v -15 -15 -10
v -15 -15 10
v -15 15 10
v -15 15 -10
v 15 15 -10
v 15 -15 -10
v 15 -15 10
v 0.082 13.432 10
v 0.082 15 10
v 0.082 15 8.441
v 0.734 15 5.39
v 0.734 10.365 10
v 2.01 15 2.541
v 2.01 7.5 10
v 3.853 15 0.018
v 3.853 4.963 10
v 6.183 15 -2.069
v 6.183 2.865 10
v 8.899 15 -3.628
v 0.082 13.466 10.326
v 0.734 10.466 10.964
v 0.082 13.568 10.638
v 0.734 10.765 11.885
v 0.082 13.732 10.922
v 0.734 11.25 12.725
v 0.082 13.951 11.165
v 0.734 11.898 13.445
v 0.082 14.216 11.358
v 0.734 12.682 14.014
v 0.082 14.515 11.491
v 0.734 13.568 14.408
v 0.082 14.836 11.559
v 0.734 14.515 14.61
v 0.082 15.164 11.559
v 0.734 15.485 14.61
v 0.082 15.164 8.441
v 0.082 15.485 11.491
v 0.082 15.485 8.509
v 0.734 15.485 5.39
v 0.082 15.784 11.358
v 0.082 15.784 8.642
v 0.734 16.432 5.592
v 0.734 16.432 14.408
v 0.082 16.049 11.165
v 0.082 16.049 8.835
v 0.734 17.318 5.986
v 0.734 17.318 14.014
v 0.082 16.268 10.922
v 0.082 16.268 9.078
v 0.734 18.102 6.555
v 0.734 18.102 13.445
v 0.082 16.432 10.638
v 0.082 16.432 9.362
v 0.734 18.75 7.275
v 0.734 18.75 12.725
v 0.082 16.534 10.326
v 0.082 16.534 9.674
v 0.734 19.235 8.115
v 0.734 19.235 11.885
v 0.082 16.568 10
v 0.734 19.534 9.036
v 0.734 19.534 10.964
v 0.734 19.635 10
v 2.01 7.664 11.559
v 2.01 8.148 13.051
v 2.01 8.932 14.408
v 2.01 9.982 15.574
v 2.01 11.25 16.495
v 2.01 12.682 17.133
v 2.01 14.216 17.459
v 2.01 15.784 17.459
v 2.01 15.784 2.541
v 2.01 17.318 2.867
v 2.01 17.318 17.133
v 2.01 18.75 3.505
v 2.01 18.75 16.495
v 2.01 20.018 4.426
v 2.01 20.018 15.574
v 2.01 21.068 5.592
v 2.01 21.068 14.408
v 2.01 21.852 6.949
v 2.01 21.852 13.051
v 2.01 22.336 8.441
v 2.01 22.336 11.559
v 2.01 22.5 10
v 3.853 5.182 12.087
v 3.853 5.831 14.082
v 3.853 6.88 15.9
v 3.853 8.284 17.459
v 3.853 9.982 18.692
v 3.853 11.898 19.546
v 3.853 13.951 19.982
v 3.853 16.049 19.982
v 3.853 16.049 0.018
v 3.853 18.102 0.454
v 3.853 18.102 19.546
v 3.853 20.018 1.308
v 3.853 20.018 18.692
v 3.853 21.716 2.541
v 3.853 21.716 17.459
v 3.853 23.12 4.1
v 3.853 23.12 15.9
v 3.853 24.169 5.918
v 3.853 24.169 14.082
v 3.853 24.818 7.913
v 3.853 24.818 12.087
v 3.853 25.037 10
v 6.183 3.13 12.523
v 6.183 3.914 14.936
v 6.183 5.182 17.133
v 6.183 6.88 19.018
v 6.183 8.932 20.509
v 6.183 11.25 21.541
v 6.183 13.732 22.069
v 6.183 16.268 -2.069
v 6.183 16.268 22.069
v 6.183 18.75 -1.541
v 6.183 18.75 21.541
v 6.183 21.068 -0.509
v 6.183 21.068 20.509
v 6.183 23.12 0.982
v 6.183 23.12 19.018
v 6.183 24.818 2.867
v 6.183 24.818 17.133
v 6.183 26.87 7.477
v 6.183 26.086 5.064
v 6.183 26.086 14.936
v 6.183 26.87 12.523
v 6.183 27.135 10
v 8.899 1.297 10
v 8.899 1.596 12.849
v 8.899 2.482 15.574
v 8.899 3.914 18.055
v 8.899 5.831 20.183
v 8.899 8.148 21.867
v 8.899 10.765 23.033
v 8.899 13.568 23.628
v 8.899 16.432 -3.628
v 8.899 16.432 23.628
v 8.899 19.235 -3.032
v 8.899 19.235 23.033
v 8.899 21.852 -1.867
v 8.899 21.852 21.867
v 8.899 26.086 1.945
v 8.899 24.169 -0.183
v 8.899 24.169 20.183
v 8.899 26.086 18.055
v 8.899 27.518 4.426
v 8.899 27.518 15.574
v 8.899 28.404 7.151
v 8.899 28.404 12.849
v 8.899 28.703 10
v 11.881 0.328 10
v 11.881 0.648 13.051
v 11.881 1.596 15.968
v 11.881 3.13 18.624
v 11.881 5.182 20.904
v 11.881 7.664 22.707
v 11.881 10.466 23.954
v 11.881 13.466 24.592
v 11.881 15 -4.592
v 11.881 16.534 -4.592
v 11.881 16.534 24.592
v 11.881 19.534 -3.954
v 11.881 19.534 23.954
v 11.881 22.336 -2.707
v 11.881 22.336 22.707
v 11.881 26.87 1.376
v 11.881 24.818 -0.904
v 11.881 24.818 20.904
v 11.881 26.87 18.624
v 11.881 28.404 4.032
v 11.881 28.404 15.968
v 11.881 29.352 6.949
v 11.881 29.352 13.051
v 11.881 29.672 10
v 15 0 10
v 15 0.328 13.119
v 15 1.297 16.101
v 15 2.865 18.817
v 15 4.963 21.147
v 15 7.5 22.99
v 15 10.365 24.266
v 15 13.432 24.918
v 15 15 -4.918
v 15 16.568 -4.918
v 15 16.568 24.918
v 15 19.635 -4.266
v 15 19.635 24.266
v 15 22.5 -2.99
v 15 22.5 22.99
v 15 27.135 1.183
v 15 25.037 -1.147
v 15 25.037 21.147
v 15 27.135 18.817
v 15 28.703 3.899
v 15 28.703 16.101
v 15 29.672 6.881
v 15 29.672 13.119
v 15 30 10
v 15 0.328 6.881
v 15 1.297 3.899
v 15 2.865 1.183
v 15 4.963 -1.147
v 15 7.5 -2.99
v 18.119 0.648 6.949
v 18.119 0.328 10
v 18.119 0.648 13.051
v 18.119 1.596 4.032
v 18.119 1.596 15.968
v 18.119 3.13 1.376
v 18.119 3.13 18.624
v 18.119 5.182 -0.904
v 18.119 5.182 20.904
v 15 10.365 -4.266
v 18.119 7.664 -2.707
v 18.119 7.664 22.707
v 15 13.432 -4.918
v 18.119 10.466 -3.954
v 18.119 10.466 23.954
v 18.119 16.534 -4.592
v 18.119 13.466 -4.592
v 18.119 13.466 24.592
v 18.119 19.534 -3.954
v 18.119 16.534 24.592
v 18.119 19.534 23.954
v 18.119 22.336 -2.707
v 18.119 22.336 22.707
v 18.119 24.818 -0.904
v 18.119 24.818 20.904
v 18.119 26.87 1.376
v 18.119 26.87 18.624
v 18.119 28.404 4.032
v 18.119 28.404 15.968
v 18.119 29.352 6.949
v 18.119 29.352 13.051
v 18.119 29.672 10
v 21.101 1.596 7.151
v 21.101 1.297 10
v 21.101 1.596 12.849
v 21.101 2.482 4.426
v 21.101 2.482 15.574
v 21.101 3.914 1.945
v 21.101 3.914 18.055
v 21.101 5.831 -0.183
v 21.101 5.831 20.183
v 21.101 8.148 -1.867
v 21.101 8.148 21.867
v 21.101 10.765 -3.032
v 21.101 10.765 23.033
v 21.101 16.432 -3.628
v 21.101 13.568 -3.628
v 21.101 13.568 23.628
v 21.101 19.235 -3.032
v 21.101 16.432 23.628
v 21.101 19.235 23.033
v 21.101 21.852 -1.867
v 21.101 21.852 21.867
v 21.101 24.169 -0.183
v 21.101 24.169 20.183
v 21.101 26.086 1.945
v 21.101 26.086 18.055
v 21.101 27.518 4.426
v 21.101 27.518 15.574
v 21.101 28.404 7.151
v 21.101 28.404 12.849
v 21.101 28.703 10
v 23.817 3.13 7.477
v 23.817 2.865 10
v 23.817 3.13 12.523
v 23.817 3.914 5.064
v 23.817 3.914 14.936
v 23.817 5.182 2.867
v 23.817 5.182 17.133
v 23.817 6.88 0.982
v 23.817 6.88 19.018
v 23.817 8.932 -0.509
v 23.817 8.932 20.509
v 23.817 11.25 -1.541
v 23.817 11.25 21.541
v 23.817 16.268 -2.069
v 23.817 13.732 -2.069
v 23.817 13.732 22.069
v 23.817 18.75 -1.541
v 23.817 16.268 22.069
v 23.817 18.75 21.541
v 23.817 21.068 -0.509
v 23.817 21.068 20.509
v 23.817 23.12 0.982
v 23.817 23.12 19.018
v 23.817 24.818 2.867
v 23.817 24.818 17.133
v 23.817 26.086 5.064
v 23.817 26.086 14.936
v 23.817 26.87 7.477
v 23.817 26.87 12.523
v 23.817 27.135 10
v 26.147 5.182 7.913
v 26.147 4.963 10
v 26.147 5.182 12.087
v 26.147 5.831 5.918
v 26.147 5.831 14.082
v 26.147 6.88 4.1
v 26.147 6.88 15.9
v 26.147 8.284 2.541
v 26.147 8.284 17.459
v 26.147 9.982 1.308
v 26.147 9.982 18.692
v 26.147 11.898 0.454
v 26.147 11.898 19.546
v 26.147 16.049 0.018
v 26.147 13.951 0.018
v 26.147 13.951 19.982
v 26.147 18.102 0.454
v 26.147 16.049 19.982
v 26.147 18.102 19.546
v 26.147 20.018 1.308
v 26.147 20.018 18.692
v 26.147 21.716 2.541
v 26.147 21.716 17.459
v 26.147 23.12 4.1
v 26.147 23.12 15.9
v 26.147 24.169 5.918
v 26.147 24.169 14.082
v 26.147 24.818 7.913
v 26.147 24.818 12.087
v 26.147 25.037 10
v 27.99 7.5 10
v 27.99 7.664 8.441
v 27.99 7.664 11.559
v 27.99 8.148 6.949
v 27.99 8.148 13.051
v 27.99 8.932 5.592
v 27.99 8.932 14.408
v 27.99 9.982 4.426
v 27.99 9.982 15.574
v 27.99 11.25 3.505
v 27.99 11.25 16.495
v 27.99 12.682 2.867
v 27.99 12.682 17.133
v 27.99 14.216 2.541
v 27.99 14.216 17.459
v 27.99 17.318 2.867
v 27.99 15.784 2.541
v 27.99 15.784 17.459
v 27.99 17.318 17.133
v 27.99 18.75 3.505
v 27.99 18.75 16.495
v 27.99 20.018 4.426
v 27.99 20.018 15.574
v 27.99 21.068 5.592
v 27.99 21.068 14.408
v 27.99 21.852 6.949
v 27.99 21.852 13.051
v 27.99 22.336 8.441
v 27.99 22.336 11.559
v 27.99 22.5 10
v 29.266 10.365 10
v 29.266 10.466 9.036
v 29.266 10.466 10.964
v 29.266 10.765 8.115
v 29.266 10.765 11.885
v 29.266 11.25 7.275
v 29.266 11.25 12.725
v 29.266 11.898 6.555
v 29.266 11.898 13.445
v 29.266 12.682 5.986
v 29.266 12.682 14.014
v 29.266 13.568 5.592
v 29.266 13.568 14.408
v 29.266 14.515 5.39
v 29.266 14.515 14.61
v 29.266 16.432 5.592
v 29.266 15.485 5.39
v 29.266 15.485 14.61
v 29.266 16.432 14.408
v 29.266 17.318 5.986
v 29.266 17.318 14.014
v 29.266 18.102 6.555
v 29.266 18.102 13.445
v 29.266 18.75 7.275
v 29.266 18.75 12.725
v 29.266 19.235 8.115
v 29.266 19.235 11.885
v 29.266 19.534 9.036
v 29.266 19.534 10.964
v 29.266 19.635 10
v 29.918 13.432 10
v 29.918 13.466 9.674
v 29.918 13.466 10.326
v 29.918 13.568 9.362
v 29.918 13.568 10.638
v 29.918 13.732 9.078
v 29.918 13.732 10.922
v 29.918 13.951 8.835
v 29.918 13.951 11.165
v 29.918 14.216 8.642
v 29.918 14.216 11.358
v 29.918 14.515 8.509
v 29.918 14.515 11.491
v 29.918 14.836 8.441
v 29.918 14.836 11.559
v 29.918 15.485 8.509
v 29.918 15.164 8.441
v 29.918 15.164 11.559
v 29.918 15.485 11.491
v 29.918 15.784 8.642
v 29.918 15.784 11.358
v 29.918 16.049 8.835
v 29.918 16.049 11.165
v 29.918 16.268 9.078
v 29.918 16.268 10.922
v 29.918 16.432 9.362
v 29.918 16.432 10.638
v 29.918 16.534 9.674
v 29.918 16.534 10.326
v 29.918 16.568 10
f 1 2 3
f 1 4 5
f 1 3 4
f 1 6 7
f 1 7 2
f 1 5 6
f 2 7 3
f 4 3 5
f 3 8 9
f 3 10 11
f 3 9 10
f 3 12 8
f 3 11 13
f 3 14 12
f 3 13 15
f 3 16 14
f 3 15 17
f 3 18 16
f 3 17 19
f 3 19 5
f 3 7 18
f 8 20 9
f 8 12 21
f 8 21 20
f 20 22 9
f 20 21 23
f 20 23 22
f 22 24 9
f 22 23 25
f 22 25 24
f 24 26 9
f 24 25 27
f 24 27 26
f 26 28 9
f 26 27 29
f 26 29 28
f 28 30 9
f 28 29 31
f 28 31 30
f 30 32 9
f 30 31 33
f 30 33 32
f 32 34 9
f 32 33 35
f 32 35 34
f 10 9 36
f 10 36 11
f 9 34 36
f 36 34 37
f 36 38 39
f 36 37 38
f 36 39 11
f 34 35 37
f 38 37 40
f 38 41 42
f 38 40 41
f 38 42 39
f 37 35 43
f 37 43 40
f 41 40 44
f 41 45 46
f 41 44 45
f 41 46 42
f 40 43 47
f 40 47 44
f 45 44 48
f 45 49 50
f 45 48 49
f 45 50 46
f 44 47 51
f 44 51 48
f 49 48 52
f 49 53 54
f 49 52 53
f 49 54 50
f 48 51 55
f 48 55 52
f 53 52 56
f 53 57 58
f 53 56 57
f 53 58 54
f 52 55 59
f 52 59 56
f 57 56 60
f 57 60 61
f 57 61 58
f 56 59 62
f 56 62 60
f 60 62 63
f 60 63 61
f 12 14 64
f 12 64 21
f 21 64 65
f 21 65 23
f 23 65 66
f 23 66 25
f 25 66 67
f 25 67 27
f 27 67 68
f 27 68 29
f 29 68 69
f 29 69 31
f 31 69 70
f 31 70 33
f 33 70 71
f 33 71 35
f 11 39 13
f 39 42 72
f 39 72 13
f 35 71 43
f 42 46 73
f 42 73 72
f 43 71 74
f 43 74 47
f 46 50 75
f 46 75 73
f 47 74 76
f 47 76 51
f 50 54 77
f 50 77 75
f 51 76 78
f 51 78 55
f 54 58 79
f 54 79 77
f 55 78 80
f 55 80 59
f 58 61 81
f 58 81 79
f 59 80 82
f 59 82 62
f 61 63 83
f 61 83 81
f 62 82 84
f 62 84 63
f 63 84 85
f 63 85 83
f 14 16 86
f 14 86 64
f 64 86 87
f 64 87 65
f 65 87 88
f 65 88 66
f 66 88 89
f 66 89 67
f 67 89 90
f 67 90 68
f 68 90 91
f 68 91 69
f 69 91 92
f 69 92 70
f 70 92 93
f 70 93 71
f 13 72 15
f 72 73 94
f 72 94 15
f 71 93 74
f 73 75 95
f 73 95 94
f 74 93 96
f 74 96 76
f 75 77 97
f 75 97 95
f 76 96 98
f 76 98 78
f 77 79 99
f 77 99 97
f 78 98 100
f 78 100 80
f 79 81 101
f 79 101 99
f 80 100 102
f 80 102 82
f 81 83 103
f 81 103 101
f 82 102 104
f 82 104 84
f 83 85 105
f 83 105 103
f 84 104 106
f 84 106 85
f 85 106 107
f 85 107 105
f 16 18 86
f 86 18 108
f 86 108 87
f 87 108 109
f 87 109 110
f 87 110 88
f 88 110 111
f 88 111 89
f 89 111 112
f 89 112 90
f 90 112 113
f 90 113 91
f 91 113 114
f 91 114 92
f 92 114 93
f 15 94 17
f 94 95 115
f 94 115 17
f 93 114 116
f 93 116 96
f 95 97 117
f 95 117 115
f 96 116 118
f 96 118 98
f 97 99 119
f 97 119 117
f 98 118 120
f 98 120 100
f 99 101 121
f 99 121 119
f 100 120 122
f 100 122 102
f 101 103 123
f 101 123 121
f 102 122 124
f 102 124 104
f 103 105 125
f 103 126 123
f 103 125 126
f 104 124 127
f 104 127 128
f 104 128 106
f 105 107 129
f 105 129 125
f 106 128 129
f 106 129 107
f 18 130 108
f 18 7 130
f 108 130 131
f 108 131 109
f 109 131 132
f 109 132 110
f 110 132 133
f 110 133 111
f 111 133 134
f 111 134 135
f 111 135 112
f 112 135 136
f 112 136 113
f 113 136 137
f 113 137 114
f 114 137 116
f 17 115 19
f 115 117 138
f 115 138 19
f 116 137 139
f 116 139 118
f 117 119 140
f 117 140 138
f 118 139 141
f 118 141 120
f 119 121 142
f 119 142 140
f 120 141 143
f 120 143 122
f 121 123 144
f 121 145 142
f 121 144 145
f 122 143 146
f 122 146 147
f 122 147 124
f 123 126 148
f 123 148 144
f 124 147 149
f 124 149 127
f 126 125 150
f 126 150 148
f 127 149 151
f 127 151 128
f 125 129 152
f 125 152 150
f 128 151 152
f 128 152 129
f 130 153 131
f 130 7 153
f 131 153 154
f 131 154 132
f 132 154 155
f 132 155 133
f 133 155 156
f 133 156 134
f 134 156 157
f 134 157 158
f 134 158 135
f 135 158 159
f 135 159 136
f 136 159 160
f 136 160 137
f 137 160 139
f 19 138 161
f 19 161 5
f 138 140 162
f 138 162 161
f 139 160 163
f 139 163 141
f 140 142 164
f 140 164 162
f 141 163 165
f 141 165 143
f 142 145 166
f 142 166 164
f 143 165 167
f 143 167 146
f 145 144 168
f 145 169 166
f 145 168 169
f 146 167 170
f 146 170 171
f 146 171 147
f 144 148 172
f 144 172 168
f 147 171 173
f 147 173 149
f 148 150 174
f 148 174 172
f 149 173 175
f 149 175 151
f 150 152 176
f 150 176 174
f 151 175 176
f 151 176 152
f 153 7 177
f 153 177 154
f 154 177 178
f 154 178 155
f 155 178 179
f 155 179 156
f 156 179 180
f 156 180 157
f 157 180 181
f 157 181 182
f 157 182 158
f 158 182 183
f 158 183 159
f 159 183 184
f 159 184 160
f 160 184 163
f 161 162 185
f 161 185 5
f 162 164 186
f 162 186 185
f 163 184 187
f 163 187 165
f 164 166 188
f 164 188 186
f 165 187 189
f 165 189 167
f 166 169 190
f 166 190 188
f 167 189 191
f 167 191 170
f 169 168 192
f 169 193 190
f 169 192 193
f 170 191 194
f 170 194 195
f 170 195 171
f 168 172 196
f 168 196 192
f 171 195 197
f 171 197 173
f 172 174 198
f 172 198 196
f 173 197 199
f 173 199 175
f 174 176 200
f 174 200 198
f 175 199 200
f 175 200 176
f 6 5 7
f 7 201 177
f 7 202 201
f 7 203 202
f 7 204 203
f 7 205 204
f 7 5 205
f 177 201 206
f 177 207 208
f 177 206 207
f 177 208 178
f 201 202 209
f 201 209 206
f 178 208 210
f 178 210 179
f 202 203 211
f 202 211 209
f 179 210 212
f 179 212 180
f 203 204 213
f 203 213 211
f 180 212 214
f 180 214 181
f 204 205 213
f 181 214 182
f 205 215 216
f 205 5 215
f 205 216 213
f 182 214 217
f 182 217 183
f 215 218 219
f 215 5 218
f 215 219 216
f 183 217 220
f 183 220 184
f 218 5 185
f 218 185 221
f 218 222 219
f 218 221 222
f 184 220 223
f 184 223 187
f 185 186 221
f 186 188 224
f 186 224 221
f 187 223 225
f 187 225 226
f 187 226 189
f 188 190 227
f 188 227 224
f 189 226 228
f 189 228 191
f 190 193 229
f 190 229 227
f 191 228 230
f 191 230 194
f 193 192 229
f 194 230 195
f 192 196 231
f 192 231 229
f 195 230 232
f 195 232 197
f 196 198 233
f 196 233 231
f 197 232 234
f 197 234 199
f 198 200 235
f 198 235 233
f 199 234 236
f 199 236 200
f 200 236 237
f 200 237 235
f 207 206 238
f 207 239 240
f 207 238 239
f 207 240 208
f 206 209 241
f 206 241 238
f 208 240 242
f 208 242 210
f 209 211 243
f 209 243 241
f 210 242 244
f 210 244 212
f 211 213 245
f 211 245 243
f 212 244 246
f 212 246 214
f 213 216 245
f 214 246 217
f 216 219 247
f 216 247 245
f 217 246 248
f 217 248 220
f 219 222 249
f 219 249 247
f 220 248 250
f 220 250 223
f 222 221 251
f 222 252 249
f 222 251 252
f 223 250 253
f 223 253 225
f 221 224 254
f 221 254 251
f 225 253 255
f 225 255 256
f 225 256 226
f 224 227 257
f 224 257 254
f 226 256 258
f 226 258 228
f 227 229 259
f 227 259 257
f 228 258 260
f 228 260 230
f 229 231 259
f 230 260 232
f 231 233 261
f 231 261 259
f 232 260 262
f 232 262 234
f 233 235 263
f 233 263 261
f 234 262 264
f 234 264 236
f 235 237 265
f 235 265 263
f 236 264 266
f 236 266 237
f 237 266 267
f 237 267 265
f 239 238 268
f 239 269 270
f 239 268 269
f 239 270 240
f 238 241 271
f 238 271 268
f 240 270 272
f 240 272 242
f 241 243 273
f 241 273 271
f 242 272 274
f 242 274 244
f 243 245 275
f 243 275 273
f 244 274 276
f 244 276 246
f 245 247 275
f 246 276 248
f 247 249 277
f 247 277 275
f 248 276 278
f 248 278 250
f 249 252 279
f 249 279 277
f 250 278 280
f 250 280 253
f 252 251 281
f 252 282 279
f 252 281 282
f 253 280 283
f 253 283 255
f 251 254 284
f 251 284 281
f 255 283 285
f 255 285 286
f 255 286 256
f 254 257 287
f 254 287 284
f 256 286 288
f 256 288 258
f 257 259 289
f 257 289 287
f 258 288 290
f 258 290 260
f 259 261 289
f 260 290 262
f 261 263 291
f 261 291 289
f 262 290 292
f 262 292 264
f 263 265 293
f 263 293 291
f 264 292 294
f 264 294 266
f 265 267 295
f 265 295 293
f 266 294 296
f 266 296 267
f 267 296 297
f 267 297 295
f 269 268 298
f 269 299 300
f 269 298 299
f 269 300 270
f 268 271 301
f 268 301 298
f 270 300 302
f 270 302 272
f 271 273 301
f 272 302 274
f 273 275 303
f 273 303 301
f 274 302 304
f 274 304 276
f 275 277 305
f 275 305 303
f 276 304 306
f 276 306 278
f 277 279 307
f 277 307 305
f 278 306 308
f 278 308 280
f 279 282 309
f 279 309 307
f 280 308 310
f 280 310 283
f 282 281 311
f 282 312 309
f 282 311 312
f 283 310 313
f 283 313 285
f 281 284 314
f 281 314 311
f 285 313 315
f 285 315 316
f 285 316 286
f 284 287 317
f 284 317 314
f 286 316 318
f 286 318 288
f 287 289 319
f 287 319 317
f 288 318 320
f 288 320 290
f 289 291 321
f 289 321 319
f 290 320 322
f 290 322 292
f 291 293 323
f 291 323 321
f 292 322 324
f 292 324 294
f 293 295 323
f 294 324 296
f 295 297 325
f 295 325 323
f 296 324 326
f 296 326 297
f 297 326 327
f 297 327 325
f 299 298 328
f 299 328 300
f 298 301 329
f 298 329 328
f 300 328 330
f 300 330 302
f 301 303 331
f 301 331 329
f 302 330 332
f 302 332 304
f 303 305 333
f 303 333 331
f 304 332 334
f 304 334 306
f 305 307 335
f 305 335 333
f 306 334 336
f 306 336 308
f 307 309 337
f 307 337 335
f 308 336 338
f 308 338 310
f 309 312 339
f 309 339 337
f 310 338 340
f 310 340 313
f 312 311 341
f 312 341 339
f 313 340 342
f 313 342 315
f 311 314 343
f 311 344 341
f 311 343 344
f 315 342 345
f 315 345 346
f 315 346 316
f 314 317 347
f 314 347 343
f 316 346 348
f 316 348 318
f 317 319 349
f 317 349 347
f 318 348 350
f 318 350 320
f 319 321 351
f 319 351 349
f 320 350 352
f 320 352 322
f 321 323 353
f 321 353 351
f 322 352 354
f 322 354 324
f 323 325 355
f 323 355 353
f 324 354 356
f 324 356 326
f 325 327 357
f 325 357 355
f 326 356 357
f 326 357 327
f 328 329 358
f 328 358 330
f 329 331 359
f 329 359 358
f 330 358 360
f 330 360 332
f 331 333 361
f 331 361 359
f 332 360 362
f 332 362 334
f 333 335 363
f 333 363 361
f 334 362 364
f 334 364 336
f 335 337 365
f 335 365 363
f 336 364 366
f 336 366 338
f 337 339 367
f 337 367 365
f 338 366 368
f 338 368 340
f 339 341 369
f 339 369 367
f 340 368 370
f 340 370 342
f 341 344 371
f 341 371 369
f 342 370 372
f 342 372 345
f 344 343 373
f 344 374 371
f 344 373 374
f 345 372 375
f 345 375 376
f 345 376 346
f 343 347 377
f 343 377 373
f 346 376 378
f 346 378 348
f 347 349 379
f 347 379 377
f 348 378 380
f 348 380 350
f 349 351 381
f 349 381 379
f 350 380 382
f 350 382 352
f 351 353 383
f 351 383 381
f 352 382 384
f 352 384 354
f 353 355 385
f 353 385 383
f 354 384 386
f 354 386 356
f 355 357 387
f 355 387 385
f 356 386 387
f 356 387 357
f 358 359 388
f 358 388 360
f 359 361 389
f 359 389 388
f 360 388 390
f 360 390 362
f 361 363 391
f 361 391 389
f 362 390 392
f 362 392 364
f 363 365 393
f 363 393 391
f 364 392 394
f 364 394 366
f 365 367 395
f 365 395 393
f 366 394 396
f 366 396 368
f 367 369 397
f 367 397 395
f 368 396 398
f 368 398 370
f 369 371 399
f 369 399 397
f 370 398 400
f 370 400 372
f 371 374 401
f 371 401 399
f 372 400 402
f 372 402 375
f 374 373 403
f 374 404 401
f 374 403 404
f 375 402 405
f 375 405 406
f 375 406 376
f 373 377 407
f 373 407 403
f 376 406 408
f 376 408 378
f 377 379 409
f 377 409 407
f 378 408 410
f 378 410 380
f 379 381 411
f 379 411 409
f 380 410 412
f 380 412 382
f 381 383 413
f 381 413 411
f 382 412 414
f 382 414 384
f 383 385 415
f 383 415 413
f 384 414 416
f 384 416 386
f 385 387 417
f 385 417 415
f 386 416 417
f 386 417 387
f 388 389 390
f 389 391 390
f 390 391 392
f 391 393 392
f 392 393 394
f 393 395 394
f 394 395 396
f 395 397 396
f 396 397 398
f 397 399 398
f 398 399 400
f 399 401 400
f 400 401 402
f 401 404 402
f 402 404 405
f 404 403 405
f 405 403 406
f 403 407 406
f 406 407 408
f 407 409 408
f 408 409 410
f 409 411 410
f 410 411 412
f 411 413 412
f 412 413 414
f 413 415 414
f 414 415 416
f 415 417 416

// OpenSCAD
// Start: lazy_union
default_5_default_5();
// End: lazy_union

// Modules.

// 'PartMaterial undef-default - default 5.0'
module default_5_default_5() {
  // 'None : _combine_solids_and_holes'
  union() {
    // 'default : _combine_solids_and_holes'
    union() {
      // 'overall : _combine_solids_and_holes'
      union() {
        // 'box'
        multmatrix(m=[[1.0, 0.0, 0.0, -15.0], [0.0, 1.0, 0.0, -15.0], [0.0, 0.0, 1.0, -10.0], [0.0, 0.0, 0.0, 1.0]]) {
          // 'box'
          color(c=[0.9, 0.1, 0.1, 1.0]) {
            // 'box : _combine_solids_and_holes'
            union() {
              // 'box'
              cube(size=[30.0, 30.0, 20.0]);
            }
          }
        }
        // 'sphere'
        multmatrix(m=[[0.0, 0.0, -1.0, 15.0], [-1.0, 0.0, 0.0, 15.0], [0.0, 1.0, 0.0, 10.0], [0.0, 0.0, 0.0, 1.0]]) {
          // 'sphere'
          color(c=[0.1, 0.1, 0.8, 1.0]) {
            // 'sphere : _combine_solids_and_holes'
            union() {
              // 'sphere'
              sphere(r=15.0);
            }
          }
        }
      }
    }
  }
} // end module default_5_default_5
